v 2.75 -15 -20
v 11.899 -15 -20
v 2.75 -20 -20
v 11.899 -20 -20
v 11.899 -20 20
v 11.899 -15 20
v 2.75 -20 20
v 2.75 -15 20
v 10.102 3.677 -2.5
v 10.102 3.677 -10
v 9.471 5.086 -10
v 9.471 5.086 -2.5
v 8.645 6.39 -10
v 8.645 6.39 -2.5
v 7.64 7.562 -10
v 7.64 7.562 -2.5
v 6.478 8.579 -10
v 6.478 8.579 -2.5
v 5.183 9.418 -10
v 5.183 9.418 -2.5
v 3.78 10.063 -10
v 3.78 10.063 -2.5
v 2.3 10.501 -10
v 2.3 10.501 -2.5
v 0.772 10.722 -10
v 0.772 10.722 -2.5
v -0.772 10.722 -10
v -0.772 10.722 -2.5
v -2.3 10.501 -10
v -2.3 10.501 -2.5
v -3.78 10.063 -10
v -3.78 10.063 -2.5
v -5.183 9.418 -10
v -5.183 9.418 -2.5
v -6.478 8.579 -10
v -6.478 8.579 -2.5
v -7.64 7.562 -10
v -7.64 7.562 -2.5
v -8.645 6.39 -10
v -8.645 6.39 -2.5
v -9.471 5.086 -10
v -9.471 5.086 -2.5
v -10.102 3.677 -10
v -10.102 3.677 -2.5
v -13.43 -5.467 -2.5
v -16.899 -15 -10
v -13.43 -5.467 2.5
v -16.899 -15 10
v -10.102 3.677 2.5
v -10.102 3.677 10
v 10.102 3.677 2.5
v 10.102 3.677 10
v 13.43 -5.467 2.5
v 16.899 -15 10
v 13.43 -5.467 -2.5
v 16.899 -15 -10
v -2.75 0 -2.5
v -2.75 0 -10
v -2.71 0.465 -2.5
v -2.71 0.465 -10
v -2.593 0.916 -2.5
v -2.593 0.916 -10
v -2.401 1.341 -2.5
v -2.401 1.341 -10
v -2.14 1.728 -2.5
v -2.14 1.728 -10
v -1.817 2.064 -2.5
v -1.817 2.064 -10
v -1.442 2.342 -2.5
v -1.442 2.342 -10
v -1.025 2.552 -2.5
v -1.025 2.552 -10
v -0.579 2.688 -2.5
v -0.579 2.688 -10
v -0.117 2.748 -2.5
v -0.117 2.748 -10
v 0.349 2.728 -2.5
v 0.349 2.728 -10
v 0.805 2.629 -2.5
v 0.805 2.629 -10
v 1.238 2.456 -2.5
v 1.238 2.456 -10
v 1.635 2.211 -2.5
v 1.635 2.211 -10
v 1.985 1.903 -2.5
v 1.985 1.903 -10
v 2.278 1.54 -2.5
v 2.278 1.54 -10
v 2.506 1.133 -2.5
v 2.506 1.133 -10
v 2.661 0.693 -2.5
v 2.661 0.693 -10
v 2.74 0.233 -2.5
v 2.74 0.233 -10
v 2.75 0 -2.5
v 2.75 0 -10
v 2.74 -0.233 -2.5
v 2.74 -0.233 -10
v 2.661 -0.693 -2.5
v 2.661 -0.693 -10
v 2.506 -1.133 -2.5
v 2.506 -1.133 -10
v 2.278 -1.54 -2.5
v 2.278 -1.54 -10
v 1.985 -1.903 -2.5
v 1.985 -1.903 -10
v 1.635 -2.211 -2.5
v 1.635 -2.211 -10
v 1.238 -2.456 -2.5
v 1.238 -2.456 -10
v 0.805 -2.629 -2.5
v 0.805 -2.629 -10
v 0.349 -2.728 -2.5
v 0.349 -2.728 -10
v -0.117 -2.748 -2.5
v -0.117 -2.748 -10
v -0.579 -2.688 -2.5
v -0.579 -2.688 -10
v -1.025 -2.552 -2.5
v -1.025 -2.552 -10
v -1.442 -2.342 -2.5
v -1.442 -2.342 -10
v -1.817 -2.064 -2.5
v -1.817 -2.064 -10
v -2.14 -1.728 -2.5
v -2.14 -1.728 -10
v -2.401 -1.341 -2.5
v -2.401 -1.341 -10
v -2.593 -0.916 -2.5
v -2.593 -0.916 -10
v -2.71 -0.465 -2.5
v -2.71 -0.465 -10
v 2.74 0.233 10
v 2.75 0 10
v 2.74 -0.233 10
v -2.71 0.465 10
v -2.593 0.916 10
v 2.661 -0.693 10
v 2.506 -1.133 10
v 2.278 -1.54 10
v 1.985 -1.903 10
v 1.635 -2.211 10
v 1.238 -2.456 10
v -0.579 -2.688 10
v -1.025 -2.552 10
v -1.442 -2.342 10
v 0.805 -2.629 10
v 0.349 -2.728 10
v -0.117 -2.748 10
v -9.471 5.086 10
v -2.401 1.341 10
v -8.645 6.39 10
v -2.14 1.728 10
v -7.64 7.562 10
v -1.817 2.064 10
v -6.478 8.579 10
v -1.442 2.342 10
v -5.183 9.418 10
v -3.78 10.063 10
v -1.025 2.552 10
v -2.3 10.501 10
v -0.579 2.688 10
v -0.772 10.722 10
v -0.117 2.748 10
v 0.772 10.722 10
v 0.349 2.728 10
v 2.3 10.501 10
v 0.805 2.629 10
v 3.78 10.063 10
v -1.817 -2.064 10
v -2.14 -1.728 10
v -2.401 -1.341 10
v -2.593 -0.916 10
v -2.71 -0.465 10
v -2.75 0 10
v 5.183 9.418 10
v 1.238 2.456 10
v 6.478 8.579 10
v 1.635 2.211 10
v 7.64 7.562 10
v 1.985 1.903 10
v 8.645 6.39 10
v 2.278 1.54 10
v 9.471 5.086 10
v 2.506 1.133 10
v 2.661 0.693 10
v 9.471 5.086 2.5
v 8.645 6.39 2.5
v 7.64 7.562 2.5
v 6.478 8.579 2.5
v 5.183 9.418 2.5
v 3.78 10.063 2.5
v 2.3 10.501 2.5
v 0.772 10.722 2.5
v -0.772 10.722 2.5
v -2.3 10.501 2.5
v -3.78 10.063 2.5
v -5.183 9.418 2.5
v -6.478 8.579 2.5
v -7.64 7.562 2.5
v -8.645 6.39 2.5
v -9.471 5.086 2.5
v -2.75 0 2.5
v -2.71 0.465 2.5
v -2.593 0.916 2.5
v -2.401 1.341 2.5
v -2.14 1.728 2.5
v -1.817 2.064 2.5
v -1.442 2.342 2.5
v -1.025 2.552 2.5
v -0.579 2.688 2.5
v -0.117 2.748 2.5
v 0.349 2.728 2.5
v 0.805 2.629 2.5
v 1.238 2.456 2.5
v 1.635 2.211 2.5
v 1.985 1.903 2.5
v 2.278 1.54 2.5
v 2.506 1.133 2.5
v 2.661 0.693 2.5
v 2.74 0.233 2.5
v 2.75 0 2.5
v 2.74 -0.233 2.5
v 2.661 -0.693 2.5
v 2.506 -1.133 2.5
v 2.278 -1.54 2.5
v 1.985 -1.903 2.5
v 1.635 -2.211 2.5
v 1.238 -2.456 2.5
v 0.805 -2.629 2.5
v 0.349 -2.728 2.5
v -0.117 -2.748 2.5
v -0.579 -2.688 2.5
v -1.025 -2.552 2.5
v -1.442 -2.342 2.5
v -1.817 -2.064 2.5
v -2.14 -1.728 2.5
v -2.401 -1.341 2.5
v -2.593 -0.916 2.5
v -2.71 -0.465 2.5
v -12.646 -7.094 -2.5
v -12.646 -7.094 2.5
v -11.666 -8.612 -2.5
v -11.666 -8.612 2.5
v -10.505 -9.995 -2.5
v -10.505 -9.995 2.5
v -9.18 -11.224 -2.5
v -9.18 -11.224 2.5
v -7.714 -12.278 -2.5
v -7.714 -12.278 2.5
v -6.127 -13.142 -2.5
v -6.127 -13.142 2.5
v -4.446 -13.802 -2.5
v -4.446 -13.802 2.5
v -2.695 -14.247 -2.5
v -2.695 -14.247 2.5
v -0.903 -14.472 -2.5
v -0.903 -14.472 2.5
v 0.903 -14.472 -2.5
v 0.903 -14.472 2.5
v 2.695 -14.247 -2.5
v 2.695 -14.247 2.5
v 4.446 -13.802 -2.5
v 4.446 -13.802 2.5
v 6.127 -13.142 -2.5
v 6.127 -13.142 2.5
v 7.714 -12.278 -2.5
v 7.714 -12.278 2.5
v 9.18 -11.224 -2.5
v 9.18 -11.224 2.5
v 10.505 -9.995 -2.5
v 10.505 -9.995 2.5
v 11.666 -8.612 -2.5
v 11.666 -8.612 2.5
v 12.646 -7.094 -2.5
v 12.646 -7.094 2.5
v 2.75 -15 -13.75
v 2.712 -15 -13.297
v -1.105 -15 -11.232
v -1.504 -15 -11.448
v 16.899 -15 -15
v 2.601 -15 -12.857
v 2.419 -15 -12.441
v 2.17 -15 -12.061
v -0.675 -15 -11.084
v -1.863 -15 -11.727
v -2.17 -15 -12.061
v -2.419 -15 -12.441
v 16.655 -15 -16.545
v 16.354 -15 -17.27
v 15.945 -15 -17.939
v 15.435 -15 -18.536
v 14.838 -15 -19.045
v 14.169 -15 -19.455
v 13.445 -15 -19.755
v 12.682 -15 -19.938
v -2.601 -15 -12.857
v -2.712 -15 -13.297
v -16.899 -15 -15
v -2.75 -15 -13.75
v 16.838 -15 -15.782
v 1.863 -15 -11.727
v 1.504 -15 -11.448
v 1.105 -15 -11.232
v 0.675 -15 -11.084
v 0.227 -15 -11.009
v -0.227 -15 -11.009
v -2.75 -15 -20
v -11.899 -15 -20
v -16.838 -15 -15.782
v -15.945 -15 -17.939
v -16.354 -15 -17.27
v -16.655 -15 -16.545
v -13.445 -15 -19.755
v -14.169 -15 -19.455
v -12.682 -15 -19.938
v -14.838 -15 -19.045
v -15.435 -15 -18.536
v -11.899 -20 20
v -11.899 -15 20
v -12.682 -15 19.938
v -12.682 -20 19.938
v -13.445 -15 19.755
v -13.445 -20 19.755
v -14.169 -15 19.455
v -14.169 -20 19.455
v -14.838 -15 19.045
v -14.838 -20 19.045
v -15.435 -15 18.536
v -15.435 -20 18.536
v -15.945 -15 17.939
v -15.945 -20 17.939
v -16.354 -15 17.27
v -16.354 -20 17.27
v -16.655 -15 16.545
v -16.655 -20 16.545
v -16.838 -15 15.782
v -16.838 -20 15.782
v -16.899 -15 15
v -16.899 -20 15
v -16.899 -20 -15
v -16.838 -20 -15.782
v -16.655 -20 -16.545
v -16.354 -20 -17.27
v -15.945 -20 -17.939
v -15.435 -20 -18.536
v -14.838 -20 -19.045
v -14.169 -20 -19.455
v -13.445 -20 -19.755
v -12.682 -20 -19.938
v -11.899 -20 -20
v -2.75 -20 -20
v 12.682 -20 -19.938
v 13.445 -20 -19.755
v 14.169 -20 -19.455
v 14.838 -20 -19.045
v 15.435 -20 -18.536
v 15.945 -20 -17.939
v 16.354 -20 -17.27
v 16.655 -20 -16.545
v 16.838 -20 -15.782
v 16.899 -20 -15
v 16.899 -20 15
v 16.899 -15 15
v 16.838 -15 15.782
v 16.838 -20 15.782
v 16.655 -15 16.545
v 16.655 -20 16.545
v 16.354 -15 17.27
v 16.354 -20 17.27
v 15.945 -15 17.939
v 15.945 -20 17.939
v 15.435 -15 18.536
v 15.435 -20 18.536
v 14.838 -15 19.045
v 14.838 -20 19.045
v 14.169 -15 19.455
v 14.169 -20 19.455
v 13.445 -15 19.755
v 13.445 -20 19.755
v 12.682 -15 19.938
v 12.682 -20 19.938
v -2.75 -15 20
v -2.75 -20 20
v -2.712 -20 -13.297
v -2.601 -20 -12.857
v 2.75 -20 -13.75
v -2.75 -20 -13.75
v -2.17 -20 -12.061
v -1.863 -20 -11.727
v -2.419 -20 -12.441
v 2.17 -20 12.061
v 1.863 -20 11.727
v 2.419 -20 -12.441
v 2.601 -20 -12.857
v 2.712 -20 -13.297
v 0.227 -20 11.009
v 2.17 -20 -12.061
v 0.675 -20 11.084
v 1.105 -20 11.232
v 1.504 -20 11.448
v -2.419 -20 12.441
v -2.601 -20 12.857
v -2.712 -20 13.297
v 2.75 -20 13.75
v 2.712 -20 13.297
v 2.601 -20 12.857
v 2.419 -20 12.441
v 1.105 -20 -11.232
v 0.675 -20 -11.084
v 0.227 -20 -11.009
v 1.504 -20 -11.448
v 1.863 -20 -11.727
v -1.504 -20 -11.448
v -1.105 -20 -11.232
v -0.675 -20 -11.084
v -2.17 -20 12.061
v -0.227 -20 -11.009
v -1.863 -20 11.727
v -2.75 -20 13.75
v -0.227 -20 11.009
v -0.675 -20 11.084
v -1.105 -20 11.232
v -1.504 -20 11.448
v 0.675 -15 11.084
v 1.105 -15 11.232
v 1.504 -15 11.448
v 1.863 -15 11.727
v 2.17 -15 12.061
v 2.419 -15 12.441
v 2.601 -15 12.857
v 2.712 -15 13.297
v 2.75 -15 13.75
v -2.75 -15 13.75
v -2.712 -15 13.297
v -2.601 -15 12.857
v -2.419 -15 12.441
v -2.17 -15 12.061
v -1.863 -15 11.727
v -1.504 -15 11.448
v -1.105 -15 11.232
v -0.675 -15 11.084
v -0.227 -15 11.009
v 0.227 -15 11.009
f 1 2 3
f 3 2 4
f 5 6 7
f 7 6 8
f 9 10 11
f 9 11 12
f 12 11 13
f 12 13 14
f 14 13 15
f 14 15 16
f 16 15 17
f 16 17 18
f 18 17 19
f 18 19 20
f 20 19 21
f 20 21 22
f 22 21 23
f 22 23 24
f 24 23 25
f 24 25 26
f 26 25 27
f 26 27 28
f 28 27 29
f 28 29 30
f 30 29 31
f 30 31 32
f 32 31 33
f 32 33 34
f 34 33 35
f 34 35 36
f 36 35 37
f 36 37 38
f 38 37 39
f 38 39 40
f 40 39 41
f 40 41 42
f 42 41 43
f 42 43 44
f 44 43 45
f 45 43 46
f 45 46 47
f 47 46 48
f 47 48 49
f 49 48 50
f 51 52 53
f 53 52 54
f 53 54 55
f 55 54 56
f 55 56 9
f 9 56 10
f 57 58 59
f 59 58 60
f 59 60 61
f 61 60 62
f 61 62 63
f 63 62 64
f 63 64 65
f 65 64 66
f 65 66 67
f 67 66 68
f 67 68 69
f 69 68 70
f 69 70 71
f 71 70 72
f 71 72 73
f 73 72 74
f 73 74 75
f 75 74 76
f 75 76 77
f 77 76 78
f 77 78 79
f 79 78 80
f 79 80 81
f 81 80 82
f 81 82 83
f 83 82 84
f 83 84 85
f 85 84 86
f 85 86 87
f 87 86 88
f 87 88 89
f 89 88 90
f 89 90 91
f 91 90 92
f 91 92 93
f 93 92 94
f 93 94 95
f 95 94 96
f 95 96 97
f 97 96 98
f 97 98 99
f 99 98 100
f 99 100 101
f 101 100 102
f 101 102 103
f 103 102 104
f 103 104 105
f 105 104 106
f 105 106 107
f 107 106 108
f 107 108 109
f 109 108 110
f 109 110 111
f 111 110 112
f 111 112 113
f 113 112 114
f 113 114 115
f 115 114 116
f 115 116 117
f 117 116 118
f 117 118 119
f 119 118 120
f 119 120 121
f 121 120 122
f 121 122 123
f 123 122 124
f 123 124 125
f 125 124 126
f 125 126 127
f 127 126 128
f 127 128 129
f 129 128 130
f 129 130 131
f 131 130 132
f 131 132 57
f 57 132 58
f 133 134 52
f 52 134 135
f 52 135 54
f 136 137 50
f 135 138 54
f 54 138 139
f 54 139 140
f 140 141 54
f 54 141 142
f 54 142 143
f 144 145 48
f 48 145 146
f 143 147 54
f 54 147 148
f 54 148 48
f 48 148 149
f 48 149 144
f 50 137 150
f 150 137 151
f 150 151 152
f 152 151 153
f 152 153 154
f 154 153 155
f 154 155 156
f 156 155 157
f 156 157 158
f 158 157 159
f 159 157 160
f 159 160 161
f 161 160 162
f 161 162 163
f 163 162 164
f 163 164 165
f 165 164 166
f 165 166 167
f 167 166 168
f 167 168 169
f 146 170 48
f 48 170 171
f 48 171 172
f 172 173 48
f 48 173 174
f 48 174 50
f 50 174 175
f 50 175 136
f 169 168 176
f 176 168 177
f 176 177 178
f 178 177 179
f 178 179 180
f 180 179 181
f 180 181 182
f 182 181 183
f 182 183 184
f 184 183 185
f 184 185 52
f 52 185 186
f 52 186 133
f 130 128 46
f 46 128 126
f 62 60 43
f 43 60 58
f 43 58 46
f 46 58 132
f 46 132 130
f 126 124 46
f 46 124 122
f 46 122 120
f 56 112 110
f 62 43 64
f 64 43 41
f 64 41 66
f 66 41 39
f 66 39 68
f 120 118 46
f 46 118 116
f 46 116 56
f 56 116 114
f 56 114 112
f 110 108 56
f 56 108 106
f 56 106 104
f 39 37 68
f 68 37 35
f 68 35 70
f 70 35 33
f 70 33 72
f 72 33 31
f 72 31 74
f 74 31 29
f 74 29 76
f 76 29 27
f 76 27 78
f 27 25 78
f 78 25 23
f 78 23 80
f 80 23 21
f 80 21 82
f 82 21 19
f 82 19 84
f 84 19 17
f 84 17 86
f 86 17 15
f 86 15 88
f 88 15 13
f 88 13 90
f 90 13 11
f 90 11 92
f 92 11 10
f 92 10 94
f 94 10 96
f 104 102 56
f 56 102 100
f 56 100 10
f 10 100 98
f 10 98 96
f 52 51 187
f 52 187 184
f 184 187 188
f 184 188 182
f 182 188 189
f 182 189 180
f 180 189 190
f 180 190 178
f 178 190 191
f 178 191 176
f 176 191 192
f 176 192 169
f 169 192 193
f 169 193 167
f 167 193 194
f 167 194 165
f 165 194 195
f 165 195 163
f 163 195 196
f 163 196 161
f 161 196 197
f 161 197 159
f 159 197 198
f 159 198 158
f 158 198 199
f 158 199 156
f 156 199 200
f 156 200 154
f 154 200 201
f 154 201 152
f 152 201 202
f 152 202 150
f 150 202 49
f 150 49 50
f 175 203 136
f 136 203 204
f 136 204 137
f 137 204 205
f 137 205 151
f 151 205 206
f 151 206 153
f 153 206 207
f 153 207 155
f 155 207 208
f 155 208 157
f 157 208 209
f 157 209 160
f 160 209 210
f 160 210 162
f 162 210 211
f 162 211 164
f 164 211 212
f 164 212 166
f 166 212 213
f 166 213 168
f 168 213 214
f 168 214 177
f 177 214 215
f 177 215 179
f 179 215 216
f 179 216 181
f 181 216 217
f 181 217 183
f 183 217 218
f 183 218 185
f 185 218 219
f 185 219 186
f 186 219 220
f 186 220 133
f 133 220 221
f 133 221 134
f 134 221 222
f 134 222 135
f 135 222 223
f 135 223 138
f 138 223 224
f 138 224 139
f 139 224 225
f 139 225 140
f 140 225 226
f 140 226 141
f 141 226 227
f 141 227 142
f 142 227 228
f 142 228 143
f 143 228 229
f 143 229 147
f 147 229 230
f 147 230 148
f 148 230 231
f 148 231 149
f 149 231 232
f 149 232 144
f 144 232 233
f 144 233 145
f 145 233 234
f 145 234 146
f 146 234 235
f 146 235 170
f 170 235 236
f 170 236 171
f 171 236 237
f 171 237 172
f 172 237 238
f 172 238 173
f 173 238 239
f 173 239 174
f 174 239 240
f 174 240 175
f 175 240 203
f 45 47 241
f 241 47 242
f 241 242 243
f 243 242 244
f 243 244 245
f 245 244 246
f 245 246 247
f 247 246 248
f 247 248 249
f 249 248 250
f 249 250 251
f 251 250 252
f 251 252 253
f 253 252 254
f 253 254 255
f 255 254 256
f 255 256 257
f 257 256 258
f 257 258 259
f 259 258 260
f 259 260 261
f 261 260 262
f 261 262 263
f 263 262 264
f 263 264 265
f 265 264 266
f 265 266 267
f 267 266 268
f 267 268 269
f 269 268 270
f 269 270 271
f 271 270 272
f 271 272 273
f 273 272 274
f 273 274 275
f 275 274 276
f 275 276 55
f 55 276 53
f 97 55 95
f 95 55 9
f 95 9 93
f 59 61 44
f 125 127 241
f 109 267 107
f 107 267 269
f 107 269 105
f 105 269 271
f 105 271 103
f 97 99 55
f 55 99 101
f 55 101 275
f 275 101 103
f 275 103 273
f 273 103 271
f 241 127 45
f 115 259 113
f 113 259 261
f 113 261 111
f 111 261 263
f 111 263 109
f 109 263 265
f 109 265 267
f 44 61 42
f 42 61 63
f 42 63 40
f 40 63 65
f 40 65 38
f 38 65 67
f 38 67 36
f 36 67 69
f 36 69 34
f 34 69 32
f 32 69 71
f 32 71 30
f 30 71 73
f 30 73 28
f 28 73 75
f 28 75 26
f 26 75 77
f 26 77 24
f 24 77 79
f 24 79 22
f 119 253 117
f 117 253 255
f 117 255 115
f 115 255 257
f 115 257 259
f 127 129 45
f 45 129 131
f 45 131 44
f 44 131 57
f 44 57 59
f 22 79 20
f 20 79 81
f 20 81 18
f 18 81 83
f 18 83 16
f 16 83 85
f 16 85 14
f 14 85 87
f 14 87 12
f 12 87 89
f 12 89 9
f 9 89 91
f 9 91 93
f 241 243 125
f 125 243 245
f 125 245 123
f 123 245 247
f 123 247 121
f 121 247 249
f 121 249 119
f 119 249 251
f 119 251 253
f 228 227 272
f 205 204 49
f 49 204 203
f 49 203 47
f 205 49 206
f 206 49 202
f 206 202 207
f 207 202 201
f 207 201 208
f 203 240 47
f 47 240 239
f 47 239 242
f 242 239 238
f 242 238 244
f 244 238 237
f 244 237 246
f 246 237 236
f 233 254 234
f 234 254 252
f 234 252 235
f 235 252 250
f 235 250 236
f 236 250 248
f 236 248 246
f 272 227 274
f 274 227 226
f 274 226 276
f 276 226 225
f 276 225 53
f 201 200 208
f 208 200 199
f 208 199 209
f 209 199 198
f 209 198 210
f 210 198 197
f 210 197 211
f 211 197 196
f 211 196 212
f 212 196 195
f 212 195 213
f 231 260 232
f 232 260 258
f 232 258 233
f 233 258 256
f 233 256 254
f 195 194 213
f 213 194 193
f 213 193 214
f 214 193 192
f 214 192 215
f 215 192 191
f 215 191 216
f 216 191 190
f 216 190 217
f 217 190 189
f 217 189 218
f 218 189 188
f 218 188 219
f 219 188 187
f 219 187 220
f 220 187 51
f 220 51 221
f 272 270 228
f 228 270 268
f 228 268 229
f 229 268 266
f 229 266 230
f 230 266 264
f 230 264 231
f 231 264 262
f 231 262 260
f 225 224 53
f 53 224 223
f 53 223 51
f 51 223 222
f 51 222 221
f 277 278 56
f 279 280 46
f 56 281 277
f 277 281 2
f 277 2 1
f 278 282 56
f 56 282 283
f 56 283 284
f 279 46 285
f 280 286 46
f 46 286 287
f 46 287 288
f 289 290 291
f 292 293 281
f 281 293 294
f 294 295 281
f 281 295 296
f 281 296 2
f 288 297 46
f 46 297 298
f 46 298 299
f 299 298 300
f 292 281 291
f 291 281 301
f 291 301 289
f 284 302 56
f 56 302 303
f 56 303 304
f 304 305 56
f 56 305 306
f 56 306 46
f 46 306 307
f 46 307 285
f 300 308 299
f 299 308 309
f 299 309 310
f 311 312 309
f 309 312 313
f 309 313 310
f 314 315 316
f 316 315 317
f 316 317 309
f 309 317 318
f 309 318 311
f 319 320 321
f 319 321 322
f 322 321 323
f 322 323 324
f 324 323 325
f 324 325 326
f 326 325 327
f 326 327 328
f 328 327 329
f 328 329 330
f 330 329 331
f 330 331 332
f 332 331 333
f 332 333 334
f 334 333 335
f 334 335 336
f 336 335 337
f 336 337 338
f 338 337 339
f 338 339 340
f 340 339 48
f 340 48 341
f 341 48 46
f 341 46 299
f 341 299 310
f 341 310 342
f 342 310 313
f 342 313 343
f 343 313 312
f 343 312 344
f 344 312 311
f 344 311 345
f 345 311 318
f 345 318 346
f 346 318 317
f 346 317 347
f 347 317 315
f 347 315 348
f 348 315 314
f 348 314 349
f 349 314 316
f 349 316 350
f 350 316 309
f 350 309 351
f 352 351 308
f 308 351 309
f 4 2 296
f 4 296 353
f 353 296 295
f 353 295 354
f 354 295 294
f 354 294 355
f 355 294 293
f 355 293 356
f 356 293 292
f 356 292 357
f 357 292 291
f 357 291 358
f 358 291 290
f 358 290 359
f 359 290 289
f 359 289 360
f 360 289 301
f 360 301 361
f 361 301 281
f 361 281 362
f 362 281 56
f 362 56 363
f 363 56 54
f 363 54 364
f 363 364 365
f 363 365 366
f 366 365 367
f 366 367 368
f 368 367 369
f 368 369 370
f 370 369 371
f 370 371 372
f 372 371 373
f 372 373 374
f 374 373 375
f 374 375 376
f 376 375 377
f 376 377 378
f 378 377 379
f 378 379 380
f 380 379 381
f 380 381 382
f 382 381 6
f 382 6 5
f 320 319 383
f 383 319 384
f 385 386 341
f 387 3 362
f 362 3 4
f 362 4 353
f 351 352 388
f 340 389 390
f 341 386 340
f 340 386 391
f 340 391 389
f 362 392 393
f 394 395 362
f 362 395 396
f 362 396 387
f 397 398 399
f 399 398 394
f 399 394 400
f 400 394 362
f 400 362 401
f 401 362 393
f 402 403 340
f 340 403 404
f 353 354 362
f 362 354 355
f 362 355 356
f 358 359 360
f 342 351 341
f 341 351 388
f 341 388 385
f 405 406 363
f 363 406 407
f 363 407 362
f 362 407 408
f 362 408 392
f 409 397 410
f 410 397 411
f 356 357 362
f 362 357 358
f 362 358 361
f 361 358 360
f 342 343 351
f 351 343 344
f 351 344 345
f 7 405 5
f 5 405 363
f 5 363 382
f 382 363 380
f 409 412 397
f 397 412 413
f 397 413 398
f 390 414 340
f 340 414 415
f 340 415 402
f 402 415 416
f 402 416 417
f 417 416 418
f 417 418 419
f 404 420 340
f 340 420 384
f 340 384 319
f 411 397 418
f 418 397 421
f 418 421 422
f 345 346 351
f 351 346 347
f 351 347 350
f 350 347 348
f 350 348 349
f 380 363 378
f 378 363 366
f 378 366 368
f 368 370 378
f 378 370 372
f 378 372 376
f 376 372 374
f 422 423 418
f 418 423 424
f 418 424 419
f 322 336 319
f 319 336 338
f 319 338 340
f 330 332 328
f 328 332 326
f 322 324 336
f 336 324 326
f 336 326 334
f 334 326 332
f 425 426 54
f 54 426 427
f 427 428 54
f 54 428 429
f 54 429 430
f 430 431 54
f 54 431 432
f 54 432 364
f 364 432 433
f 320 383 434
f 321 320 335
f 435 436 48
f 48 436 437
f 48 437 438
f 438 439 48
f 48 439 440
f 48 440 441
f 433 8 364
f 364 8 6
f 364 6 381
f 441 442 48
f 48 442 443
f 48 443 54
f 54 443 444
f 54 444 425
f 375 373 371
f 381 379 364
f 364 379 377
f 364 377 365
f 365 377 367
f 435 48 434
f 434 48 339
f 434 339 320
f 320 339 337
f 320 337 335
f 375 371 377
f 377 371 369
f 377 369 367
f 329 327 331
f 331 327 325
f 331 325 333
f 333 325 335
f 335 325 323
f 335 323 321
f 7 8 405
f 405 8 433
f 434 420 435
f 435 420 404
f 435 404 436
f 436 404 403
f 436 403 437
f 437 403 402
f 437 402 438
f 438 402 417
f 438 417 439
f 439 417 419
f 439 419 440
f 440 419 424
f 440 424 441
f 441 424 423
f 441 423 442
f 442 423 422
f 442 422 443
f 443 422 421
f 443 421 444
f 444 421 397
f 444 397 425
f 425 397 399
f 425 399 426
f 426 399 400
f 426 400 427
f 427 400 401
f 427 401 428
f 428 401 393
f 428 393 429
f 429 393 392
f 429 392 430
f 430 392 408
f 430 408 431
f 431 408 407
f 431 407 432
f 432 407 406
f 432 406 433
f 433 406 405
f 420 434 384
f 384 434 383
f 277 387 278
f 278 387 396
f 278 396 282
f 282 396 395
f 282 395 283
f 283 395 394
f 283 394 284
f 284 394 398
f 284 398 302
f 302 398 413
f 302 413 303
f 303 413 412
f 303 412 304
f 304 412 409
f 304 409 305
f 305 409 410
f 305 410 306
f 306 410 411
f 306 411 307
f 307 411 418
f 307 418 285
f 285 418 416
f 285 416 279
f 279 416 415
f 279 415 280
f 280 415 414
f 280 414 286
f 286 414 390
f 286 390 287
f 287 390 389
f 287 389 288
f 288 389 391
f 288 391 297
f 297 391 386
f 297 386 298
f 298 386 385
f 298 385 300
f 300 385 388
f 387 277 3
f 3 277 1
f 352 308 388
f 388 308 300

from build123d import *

# Parameters (mm, degrees)
SKETCH1_R           = 2.75
BOSS_EXTRUDE1_DEPTH = 10
SKETCH2_R           = 14.5
CUT_EXTRUDE1_DEPTH  = 2.5
BOSS_EXTRUDE2_DEPTH = 5
CUT_EXTRUDE5_DEPTH  = 41.387552571


with BuildPart() as part:
    # Sketch1 → Boss-Extrude1 (new, symmetric)
    with BuildSketch(Plane.XY):
        with BuildLine():
            Line((-10.101695673, 3.676716541), (-16.899464568, -15))
            Line((-16.899464568, -15), (16.899464568, -15))
            Line((16.899464568, -15), (10.101695673, 3.676716541))
            ThreePointArc((10.101695673, 3.676716541), (0, 10.75), (-10.101695673, 3.676716541))
        make_face()
        Circle(SKETCH1_R, mode=Mode.SUBTRACT)
    extrude(amount=BOSS_EXTRUDE1_DEPTH, both=True)

    # Sketch2 → Cut-Extrude1 (cut, symmetric)
    with BuildSketch(Plane.XY):
        Circle(SKETCH2_R)
    extrude(amount=CUT_EXTRUDE1_DEPTH, both=True, mode=Mode.SUBTRACT)

    # Sketch3 → Boss-Extrude2 (add)
    with BuildSketch(Plane.XZ.offset(15)):
        with BuildLine():
            Line((-16.899464568, 15), (-16.899464568, 10))
            Line((-16.899464568, 10), (16.899464568, 10))
            Line((16.899464568, 10), (16.899464568, 15))
            ThreePointArc((16.899464568, 15), (15.434998474, 18.535533906), (11.899464568, 20))
            Line((11.899464568, 20), (-11.899464568, 20))
            ThreePointArc((-11.899464568, 20), (-15.434998474, 18.535533906), (-16.899464568, 15))
        make_face()
        Polygon((16.899464568, 10), (-16.899464568, 10), (-16.899464568, -10), (16.899464568, -10), (16.899464568, 0), align=None)
        with BuildLine():
            Line((16.899464568, -10), (-16.899464568, -10))
            Line((-16.899464568, -10), (-16.899464568, -15))
            ThreePointArc((-16.899464568, -15), (-15.434998474, -18.535533906), (-11.899464568, -20))
            Line((-11.899464568, -20), (11.899464568, -20))
            ThreePointArc((11.899464568, -20), (15.434998474, -18.535533906), (16.899464568, -15))
            Line((16.899464568, -15), (16.899464568, -10))
        make_face()
    extrude(amount=BOSS_EXTRUDE2_DEPTH)

    # Sketch4 → Cut-Extrude5 (cut, through all)
    with BuildSketch(Plane.XZ.offset(20)):
        with BuildLine():
            Line((-2.75, 20), (-2.75, 13.75))
            ThreePointArc((-2.75, 13.75), (0, 11), (2.75, 13.75))
            Line((2.75, 13.75), (2.75, 20))
            Line((2.75, 20), (-2.75, 20))
        make_face()
        with BuildLine():
            Line((-2.75, -20), (-2.75, -13.75))
            ThreePointArc((-2.75, -13.75), (0, -11), (2.75, -13.75))
            Line((2.75, -13.75), (2.75, -20))
            Line((2.75, -20), (-2.75, -20))
        make_face()
    extrude(amount=-CUT_EXTRUDE5_DEPTH, mode=Mode.SUBTRACT)


solid = part.part
